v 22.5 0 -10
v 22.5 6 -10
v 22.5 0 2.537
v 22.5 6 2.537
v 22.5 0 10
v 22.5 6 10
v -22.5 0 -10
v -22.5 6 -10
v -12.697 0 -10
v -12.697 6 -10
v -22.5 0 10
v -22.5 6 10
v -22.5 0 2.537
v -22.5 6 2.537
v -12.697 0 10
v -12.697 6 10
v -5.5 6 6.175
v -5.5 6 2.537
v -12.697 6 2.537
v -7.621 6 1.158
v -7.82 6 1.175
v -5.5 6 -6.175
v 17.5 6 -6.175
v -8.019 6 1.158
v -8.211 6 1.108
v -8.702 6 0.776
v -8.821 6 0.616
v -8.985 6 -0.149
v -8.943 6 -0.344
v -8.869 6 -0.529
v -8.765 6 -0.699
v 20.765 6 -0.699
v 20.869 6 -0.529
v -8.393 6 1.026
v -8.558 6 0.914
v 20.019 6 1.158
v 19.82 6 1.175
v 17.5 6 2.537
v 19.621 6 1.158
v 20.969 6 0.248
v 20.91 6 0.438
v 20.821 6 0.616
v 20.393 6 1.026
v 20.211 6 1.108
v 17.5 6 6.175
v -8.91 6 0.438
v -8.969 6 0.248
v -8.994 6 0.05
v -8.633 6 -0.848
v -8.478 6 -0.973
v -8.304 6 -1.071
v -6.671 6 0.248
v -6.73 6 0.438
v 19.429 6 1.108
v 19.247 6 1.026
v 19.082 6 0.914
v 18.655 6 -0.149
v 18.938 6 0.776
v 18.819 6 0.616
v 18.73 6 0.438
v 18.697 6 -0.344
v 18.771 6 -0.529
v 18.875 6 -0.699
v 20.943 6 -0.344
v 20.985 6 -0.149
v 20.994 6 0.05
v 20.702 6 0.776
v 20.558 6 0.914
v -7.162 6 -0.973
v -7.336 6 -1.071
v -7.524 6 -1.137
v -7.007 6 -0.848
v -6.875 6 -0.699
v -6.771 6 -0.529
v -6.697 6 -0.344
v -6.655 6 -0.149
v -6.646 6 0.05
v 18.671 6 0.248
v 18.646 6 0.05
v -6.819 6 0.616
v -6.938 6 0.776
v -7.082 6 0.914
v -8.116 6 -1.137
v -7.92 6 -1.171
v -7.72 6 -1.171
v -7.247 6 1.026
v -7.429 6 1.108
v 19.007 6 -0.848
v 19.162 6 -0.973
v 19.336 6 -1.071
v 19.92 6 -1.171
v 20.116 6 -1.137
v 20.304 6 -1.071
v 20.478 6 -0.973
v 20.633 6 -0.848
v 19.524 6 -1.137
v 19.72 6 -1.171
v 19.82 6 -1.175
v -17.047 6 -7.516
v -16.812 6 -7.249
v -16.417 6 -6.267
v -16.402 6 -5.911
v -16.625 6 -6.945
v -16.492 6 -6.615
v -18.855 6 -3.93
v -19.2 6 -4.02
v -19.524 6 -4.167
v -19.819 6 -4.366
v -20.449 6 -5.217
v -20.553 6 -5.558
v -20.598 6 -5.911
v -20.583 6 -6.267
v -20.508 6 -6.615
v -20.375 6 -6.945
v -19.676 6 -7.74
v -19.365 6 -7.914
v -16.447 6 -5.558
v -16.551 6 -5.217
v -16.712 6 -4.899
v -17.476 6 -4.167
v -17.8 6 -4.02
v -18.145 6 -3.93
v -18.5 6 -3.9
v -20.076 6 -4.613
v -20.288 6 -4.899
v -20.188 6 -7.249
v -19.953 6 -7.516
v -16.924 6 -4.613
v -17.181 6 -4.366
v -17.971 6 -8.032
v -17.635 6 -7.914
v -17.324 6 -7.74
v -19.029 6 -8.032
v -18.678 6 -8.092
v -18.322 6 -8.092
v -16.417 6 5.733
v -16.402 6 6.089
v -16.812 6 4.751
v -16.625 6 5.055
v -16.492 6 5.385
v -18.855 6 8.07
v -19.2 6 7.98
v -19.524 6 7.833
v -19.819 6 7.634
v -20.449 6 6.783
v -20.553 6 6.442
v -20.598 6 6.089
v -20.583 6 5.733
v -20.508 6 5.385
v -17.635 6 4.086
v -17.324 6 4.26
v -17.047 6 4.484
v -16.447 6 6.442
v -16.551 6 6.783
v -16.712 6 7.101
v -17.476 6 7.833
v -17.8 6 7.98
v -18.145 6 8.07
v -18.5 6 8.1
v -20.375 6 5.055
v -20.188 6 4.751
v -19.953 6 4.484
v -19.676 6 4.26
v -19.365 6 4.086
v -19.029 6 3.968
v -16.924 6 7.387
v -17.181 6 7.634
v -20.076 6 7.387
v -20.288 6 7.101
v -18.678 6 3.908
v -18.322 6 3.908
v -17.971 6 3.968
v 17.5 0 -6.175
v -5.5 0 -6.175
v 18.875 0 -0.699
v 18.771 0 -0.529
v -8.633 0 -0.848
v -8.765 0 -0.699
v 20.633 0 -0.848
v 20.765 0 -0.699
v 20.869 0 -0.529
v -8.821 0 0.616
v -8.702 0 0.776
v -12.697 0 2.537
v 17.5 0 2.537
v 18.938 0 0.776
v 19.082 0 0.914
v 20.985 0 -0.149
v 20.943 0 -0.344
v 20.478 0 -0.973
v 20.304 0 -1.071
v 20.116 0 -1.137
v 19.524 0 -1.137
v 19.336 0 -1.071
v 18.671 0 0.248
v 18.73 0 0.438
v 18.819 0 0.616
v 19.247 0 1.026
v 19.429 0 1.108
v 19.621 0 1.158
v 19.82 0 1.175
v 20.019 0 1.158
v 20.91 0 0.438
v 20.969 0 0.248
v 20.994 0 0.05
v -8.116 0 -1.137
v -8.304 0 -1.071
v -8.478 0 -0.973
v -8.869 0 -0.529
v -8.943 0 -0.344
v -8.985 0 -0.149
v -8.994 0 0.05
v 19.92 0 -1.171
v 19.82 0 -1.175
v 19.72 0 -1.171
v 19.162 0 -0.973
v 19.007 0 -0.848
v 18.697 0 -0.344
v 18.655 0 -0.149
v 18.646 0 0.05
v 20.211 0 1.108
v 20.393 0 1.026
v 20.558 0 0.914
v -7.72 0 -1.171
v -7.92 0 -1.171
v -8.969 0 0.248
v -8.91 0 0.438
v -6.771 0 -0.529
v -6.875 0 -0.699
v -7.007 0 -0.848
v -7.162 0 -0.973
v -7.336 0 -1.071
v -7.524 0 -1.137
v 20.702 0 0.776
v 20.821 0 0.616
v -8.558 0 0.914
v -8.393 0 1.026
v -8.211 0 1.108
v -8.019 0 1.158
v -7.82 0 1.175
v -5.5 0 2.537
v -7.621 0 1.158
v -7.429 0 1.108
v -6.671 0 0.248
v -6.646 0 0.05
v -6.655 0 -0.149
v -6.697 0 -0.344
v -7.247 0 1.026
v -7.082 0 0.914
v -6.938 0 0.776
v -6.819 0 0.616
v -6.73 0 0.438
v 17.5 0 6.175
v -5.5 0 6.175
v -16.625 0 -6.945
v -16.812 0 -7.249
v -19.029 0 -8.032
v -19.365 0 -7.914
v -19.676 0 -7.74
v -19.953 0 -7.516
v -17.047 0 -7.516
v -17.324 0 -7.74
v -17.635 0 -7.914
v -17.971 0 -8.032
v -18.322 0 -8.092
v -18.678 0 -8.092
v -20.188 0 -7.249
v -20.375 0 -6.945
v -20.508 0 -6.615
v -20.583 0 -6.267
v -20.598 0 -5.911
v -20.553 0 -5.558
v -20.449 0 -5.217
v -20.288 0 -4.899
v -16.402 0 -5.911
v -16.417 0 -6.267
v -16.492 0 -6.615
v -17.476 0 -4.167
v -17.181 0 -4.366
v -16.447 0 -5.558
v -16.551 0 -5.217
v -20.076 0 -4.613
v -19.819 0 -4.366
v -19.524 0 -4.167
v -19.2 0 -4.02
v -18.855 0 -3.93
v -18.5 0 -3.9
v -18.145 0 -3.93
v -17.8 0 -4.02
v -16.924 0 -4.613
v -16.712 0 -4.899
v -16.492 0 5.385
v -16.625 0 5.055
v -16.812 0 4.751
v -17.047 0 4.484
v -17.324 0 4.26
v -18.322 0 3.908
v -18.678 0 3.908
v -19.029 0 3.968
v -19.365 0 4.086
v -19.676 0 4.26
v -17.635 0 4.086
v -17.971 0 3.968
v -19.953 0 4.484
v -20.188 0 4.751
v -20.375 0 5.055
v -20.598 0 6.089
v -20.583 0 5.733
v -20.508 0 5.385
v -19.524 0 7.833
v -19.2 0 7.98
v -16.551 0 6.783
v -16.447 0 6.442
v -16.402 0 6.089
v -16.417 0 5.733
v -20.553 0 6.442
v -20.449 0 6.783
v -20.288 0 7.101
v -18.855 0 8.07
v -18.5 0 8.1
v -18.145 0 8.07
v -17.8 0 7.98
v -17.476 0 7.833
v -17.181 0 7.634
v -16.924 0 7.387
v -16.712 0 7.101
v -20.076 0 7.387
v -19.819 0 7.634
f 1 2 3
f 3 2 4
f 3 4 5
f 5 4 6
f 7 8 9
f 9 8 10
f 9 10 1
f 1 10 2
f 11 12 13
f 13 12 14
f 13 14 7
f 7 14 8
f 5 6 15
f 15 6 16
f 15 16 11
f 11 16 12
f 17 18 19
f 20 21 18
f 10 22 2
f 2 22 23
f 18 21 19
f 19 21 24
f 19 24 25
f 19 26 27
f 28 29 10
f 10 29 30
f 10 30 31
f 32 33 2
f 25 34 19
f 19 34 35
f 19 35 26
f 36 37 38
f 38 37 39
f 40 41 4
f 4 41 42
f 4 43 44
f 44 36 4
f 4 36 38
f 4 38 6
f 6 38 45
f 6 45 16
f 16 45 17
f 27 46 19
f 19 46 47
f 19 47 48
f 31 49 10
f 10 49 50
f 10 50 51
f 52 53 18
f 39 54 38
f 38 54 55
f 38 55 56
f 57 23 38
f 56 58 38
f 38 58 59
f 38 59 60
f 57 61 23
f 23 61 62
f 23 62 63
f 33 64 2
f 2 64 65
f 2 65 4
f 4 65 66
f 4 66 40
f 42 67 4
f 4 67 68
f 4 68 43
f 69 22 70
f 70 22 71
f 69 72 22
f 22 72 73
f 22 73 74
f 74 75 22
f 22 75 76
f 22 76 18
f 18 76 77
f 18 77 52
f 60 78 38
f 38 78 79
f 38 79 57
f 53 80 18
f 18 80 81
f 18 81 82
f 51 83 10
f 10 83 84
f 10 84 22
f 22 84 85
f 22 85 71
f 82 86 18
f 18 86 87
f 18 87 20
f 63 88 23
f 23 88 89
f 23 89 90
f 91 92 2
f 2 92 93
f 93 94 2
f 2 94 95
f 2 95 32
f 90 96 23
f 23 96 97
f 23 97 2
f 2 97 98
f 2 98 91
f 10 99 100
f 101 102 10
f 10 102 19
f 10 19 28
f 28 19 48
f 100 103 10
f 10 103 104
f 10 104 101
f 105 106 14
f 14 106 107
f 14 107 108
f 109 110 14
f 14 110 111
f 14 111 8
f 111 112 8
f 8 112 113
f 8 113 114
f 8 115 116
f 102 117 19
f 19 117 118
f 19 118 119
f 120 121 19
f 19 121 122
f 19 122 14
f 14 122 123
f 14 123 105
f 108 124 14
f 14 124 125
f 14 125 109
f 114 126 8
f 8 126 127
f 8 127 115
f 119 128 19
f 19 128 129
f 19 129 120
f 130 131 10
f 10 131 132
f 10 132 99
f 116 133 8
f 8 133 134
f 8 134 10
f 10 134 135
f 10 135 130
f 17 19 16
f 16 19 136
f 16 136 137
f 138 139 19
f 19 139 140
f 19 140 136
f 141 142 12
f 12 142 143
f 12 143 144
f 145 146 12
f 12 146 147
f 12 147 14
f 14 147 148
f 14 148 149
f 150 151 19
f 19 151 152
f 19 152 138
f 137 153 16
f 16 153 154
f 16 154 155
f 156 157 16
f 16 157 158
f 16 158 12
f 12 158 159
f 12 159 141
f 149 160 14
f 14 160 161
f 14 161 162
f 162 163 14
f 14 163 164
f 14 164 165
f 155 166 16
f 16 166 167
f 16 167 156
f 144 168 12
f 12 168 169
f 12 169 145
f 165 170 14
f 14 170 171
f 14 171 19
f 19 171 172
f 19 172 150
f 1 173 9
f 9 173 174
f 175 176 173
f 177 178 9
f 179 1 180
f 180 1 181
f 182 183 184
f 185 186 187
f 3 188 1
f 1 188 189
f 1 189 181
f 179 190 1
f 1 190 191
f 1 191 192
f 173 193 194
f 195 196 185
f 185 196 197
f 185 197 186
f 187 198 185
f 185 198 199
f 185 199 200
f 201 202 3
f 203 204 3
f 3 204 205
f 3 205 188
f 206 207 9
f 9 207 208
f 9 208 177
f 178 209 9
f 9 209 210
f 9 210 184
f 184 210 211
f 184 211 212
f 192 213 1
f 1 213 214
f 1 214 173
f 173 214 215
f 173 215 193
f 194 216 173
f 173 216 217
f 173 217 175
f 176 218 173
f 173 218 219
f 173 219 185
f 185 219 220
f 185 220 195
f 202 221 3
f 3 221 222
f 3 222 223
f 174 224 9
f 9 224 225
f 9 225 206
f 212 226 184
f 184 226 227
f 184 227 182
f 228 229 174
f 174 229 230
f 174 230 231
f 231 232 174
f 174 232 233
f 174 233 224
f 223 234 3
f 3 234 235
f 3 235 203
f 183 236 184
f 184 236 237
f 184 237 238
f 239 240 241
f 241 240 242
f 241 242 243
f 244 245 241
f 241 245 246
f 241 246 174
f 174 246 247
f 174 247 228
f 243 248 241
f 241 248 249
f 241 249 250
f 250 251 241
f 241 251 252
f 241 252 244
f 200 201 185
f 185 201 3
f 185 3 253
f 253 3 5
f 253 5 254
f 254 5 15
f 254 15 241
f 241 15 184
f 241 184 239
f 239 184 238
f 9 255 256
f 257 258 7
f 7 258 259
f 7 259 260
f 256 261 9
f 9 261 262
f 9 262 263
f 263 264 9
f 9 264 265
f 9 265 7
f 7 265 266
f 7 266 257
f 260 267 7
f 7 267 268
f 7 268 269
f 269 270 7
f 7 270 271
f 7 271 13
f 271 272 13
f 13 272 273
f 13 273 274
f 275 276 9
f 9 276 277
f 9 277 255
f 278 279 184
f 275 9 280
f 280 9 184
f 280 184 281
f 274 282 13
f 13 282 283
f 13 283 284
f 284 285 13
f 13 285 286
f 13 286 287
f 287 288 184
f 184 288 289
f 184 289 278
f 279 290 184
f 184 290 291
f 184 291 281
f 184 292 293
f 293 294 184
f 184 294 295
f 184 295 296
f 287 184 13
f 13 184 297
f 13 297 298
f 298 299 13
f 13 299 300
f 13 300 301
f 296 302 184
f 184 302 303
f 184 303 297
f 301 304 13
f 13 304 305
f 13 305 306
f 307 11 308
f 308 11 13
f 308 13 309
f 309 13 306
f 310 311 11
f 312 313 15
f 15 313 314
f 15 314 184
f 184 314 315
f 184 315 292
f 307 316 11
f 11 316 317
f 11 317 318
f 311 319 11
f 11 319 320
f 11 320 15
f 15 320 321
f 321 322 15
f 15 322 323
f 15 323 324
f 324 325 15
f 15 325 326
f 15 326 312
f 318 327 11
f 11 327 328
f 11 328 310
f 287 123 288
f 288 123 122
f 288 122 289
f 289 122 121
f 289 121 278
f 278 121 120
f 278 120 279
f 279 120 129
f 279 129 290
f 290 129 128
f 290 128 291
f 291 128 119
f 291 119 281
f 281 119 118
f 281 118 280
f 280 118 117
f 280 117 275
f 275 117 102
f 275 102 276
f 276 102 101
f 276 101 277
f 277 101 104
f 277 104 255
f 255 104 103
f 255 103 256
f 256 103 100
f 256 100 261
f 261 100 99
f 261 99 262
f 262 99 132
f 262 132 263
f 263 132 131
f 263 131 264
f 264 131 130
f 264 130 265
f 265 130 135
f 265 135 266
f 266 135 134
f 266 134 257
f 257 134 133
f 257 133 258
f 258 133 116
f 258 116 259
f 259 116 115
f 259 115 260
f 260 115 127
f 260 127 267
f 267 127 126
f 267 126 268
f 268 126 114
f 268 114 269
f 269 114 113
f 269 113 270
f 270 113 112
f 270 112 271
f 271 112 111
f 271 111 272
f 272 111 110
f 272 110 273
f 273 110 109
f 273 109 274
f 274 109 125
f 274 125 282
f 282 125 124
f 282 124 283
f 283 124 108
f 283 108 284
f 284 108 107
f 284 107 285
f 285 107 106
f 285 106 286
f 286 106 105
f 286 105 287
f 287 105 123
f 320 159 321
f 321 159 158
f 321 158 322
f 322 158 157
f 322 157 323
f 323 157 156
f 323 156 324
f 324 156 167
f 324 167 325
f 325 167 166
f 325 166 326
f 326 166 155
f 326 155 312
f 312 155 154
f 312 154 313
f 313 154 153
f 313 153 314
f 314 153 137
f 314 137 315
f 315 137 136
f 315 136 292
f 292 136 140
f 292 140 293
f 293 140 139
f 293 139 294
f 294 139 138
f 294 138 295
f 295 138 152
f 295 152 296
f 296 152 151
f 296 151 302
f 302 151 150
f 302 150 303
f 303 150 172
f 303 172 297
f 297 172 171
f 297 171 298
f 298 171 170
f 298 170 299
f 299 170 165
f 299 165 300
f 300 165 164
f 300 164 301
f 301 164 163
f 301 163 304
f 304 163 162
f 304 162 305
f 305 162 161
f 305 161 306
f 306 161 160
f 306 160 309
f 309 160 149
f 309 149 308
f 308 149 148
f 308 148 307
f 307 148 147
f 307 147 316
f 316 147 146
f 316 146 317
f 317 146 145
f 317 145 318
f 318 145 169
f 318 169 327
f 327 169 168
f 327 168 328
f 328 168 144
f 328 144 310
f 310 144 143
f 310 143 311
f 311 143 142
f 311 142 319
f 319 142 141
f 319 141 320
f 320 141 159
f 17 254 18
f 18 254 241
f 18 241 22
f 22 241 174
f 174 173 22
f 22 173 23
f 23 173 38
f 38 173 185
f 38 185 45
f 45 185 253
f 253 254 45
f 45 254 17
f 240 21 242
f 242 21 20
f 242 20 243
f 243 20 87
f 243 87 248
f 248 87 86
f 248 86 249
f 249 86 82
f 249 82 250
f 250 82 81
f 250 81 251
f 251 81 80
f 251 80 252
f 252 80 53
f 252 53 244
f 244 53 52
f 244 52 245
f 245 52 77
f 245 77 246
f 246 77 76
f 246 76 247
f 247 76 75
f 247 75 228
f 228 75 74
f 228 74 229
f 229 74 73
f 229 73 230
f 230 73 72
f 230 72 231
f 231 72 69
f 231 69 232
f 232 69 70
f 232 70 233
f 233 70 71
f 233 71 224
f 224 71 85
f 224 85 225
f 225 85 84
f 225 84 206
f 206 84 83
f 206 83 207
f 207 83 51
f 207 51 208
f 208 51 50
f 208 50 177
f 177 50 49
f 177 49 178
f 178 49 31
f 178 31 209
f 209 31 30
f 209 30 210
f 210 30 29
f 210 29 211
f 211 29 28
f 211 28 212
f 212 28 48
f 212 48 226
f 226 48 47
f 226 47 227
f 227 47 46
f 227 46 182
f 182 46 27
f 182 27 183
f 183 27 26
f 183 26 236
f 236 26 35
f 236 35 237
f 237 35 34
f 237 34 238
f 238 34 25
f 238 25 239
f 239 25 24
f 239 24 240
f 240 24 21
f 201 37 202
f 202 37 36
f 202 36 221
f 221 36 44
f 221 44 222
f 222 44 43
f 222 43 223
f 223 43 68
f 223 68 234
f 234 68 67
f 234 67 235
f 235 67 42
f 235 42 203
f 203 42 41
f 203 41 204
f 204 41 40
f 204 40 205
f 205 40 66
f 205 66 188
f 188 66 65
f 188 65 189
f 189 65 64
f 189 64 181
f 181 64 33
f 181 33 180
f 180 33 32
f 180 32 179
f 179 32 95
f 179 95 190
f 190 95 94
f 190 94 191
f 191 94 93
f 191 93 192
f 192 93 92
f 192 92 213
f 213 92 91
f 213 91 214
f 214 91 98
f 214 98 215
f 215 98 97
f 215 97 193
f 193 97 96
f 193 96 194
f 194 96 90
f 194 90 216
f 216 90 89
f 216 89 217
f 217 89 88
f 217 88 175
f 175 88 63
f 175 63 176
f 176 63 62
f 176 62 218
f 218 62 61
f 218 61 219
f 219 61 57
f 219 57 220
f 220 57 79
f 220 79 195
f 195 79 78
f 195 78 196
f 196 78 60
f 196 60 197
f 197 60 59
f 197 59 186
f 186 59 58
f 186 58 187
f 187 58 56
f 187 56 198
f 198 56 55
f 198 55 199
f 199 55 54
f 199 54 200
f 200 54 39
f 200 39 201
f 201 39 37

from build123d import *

# Parameters (mm, degrees)
SKETCH1_W           = 45
SKETCH1_H           = 20
BOSS_EXTRUDE1_DEPTH = 6
SKETCH2_R           = 2.1
CUT_EXTRUDE1_DEPTH  = 6
SKETCH3_R           = 1.175
SKETCH3_W           = 23
SKETCH3_H           = 12.35
CUT_EXTRUDE2_DEPTH  = 6


with BuildPart() as part:
    # Sketch1 → Boss-Extrude1 (new body)
    with BuildSketch(Plane(origin=(0, 0, 0), x_dir=(1, 0, 0), z_dir=(0, 1, 0))):
        Rectangle(SKETCH1_W, SKETCH1_H)
    extrude(amount=BOSS_EXTRUDE1_DEPTH)

    # Sketch2 → Cut-Extrude1 (cut)
    with BuildSketch(Plane(origin=(0, 6, 0), x_dir=(1, 0, 0), z_dir=(0, 1, 0))):
        with Locations((-18.5, -6)):
            Circle(SKETCH2_R)
        with Locations((-18.5, 6)):
            Circle(SKETCH2_R)
    extrude(amount=-CUT_EXTRUDE1_DEPTH, mode=Mode.SUBTRACT)

    # Sketch3 → Cut-Extrude2 (cut)
    with BuildSketch(Plane(origin=(0, 6, 0), x_dir=(1, 0, 0), z_dir=(0, 1, 0))):
        with Locations((-7.82, 0)):
            Circle(SKETCH3_R)
        with Locations((19.82, 0)):
            Circle(SKETCH3_R)
        with Locations((6, 0)):
            Rectangle(SKETCH3_W, SKETCH3_H)
    extrude(amount=-CUT_EXTRUDE2_DEPTH, mode=Mode.SUBTRACT)


solid = part.part
